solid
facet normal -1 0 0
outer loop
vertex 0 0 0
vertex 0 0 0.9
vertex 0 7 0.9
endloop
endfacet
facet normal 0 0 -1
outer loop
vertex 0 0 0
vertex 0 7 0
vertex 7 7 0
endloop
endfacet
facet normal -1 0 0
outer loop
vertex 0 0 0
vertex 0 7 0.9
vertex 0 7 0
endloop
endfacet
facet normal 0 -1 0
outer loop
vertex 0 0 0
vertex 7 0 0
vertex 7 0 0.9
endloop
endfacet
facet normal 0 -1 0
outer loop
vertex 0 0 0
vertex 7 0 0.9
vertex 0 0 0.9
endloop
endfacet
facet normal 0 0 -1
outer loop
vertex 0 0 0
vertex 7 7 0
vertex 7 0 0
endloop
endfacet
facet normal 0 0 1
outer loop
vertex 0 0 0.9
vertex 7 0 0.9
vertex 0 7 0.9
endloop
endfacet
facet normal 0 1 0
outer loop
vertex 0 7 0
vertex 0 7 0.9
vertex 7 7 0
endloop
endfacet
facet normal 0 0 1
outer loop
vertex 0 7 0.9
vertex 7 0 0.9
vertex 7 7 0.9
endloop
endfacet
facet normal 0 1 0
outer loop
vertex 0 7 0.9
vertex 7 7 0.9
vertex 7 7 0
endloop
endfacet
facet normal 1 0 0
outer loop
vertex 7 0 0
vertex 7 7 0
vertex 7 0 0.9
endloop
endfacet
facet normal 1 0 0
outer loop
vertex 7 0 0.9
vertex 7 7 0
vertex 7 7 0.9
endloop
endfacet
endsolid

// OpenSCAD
/* Warning, this is a very basic generator with a lot of approximation 
input data : [VQFN, SQB, 7x7x0.9mm, 32, , B, C04-21417B]
generated by com.zoubworld.electronics.cad.model3d.Basic
Date : Sun Feb 15 10:50:49 CET 2026
*/

//body
color("black")
translate([0,0,0])
cube([7.0,7.0,0.9], center=false);
